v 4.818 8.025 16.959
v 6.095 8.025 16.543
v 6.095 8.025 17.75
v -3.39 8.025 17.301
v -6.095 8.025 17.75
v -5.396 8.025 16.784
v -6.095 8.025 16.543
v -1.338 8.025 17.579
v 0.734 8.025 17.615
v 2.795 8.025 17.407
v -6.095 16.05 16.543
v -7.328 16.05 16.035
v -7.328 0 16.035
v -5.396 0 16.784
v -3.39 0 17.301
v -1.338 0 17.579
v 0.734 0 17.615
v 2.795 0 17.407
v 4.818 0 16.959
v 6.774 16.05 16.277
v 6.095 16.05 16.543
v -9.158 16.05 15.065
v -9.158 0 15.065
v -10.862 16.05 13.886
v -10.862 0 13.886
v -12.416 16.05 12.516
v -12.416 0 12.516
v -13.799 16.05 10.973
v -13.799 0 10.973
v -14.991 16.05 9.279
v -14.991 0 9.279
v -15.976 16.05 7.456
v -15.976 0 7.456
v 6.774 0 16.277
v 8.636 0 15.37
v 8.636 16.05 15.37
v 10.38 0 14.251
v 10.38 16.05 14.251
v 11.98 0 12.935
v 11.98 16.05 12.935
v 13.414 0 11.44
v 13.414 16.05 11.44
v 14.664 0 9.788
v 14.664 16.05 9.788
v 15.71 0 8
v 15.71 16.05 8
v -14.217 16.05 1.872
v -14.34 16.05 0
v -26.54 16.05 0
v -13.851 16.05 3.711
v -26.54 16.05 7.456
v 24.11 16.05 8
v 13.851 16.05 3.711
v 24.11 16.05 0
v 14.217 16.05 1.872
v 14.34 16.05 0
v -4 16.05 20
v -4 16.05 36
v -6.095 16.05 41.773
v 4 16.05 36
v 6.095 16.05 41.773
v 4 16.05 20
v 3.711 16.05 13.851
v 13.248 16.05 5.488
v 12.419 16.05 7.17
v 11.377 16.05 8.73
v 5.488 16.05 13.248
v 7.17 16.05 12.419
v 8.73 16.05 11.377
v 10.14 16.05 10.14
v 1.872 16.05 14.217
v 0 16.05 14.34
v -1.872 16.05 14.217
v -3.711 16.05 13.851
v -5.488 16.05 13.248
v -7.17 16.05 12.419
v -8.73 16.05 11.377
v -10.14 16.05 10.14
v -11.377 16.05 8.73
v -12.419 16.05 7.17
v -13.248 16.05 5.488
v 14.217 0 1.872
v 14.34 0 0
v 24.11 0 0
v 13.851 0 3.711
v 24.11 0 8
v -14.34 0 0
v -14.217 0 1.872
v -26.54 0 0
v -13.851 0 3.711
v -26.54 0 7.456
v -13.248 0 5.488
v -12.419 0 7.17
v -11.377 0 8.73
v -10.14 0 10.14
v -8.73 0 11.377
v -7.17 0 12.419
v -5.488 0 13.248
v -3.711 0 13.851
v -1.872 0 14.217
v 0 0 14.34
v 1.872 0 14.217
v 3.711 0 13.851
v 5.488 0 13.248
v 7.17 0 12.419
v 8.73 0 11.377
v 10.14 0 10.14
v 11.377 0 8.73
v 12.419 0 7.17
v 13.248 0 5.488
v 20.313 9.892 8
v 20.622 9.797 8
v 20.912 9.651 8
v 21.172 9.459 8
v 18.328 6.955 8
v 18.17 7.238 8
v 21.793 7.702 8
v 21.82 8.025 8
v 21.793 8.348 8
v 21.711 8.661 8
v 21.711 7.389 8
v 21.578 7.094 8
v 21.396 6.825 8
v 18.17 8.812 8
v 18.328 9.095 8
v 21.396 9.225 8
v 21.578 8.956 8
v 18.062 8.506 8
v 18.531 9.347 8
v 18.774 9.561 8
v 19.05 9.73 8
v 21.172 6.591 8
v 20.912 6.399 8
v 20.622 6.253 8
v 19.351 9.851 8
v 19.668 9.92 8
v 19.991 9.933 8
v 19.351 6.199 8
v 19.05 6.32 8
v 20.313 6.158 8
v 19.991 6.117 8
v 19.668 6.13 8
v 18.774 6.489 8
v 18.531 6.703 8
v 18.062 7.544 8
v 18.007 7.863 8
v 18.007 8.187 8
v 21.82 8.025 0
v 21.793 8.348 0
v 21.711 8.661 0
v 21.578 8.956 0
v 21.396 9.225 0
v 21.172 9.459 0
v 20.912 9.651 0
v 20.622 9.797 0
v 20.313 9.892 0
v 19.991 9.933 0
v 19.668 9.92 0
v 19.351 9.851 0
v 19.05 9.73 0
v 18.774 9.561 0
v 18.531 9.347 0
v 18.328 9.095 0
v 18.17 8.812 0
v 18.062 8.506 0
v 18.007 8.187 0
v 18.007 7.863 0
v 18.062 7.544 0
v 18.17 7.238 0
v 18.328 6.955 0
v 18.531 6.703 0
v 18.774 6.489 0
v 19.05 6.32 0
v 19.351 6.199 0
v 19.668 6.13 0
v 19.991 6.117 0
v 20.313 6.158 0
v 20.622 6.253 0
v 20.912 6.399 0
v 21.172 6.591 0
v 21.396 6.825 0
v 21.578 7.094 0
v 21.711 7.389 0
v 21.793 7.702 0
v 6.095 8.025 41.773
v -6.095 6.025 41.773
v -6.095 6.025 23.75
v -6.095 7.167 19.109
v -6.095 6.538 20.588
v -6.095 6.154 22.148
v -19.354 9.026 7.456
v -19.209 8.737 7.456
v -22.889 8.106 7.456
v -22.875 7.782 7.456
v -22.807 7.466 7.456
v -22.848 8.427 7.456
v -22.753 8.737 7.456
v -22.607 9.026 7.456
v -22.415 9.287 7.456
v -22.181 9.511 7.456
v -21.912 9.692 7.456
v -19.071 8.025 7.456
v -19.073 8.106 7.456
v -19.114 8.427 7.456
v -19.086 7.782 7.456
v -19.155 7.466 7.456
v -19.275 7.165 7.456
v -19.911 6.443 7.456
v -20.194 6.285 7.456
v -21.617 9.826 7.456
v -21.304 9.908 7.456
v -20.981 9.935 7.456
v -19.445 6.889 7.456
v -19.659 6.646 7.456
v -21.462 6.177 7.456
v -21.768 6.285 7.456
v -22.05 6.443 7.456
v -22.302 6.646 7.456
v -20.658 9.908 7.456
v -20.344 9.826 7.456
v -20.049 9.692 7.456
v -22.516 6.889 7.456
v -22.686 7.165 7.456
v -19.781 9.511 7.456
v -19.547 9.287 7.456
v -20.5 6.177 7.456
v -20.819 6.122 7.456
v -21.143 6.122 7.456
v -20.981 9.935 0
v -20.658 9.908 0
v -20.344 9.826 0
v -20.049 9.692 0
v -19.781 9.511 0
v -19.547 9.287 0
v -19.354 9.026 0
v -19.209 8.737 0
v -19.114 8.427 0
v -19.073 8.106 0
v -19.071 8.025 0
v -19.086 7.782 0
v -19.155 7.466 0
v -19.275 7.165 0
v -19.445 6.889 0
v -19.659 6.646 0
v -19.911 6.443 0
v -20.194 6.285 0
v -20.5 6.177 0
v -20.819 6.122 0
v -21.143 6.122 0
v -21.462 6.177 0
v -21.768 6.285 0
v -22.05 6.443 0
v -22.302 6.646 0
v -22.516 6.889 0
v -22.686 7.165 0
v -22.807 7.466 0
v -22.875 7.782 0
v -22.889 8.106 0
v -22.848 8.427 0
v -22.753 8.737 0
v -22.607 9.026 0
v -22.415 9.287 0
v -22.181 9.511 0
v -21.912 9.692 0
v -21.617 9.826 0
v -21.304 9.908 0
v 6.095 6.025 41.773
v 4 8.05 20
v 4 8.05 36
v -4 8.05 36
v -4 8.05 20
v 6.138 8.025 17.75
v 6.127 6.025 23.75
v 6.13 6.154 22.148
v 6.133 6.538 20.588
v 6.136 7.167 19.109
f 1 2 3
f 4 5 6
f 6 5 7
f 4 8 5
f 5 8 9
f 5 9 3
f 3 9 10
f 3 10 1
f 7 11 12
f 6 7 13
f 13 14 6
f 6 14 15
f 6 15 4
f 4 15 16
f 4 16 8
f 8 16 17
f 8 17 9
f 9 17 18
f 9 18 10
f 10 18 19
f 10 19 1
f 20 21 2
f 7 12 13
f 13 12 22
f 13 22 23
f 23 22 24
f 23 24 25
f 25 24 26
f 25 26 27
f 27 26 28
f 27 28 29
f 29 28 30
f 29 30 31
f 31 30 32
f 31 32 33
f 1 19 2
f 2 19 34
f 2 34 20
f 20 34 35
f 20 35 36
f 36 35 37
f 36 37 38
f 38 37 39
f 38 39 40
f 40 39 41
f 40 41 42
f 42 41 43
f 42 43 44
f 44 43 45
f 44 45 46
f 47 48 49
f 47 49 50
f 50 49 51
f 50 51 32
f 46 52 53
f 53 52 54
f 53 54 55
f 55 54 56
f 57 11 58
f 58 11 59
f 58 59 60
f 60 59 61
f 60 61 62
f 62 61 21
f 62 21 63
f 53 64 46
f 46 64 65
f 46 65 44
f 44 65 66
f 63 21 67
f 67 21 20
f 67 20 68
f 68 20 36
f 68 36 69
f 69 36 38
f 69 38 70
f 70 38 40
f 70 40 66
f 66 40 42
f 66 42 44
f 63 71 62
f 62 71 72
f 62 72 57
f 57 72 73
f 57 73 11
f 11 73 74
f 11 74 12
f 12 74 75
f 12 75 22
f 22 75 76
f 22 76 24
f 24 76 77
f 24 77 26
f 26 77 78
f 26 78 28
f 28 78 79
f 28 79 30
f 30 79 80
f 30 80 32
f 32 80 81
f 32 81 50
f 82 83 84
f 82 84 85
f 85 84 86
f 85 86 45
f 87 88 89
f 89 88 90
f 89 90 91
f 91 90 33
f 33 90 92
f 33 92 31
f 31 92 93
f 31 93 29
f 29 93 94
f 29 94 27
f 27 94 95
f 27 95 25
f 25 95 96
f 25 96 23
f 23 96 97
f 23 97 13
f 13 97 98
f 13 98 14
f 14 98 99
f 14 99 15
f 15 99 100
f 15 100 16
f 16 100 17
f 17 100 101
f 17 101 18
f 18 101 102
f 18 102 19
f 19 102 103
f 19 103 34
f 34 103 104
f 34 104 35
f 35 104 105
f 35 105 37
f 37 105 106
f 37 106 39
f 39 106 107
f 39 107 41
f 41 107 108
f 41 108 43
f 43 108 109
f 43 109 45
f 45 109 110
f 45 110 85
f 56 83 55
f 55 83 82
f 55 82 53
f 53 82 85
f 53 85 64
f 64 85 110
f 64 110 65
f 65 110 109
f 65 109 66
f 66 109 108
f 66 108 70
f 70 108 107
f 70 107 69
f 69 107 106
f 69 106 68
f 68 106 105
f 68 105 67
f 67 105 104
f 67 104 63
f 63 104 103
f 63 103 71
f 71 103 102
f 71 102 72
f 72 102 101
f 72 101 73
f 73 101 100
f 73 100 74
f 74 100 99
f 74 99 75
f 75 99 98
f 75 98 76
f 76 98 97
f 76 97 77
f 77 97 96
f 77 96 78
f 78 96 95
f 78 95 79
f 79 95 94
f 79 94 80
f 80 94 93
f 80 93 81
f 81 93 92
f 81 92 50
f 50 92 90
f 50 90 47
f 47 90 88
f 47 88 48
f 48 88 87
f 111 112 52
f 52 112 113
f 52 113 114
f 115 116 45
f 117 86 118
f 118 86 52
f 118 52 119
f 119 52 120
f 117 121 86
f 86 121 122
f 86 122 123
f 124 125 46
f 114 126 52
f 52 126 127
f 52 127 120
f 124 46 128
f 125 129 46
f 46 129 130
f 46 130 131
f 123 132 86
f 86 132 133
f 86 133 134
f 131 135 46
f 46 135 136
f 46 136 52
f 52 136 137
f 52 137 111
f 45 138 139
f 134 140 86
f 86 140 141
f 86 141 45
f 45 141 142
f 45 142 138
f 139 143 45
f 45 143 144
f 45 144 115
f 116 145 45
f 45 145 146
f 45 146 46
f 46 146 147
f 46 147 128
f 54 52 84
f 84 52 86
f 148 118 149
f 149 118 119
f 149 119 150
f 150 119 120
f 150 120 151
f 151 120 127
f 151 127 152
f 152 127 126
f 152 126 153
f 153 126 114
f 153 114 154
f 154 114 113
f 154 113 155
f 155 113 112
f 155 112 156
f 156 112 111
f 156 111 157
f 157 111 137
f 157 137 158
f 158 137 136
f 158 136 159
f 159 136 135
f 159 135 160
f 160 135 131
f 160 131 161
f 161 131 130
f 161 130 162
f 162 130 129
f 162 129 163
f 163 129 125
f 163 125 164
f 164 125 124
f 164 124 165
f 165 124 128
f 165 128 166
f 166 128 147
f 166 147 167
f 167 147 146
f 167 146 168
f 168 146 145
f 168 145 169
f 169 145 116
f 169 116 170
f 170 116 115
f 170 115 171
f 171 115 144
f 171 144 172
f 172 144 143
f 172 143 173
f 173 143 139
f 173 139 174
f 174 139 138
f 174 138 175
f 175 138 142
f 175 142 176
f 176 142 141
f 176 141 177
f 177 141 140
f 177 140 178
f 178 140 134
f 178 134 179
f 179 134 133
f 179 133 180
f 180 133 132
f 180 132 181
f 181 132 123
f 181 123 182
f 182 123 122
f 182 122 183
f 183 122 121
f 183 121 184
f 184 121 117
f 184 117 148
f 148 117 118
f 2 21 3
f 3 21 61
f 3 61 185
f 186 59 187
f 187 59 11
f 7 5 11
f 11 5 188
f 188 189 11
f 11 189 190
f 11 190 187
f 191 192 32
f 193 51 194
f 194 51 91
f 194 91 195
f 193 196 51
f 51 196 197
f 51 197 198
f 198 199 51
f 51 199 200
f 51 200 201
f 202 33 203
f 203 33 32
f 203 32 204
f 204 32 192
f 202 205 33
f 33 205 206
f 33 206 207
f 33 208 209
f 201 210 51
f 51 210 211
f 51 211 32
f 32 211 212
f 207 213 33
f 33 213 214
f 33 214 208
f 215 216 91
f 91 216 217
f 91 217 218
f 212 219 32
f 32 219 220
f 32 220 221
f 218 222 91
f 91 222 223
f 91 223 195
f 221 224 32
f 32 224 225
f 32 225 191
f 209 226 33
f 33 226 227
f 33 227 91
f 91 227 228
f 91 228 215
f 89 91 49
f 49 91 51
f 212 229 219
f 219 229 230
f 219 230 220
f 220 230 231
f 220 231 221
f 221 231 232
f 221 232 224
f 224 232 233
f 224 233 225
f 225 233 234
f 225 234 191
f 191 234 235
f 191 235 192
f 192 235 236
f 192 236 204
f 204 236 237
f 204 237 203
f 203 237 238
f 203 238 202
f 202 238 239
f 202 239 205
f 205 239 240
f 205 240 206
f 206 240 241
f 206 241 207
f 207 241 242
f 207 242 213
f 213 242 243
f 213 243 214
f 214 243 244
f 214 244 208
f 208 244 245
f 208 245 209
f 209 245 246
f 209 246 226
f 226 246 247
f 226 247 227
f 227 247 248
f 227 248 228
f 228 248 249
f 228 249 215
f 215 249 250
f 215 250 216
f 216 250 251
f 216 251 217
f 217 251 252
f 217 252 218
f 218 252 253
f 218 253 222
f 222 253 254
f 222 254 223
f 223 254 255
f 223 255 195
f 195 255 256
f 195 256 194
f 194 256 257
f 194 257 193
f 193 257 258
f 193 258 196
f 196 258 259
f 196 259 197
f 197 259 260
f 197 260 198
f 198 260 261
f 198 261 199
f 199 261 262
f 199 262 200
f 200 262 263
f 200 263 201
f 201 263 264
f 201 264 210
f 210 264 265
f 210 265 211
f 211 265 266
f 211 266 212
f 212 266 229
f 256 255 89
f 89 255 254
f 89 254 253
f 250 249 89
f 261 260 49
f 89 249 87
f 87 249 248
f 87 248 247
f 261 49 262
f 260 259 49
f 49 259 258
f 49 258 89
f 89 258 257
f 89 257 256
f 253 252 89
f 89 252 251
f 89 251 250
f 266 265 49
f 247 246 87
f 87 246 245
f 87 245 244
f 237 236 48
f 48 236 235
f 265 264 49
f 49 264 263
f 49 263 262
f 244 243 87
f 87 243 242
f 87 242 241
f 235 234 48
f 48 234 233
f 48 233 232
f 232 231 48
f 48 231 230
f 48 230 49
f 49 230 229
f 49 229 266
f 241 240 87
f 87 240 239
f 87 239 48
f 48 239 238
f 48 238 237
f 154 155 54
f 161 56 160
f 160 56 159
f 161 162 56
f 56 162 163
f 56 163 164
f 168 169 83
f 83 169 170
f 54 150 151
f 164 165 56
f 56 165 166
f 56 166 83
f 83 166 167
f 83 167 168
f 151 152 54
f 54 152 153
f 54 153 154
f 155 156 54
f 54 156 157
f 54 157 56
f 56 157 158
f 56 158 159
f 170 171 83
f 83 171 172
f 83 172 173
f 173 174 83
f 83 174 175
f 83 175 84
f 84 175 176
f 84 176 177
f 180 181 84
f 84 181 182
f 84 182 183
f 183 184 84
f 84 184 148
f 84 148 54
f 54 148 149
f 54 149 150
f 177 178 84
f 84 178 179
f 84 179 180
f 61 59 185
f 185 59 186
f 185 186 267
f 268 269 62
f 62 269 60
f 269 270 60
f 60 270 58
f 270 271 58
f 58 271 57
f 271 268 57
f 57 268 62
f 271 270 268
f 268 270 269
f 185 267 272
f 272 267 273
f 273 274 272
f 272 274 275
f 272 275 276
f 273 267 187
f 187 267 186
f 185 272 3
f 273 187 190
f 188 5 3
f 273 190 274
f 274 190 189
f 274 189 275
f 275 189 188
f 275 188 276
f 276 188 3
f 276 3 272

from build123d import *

# Parameters (mm, degrees)
SKETCH_1_R             = 17.63
SKETCH_1_R_2           = 14.34
EXTRUDE_1_DEPTH        = 16.05
EXTRUDE_1_2_DEPTH      = 9.77
EXTRUDE_1_2_DEPTH_BACK = 3
SKETCH_2_W             = 16
SKETCH_2_H             = 16.05
SKETCH_3_W             = 3.41
SKETCH_3_H             = 16
CUT_EXTRUDE_1_DEPTH    = 37.411121927
SKETCH_4_R             = 1.91
CUT_EXTRUDE_2_DEPTH    = 39.675463798
EXTRUDE_2_DEPTH        = 4
EXTRUDE_2_DEPTH_BACK   = 2.77
SKETCH_5_W             = 12.19
SKETCH_5_H             = 8.263625949
SKETCH_6_W             = 12.19
SKETCH_6_H             = 6.77
EXTRUDE_3_DEPTH        = 63
SKETCH_8_W             = 12.19
SKETCH_8_H             = 6.77
EXTRUDE_4_DEPTH        = 0.16
EXTRUDE_5_DEPTH        = 3.16
EXTRUDE_5_DEPTH_BACK   = 10
SKETCH_12_W            = 16
SKETCH_12_H            = 16.05
SKETCH_13_W            = 1.21
SKETCH_13_H            = 16
CUT_EXTRUDE_3_DEPTH    = 73.543164889
SKETCH_14_R            = 1.91
CUT_EXTRUDE_4_DEPTH    = 90.07387176
SKETCH_15_R            = 4.05
CUT_EXTRUDE_5_DEPTH    = 24
SKETCH_16_W            = 56.400519221
SKETCH_16_H            = 19.935010357
CUT_EXTRUDE_6_DEPTH    = 73.088971918
SKETCH_17_W            = 12.19
SKETCH_17_H            = 71.423625949
EXTRUDE_7_DEPTH        = 25
SKETCH_18_W            = 26.793372528
SKETCH_18_H            = 63.398625949
CUT_EXTRUDE_7_DEPTH    = 25
SKETCH_19_R            = 4
CUT_EXTRUDE_8_DEPTH    = 24
CUT_EXTRUDE_9_DEPTH    = 29
SKETCH_21_W            = 8
SKETCH_21_H            = 16
CUT_EXTRUDE_10_DEPTH   = 8
EXTRUDE_9_DEPTH        = 2
FILLET_1_R             = 10


with BuildPart() as part:
    # 草圖1 → Extrude 1 (new body)
    with BuildSketch(Plane(origin=(0, 0, 0), x_dir=(1, 0, 0), z_dir=(0, 1, 0))):
        Circle(SKETCH_1_R)
        Circle(SKETCH_1_R_2, mode=Mode.SUBTRACT)
    extrude(amount=EXTRUDE_1_DEPTH)

    # 草圖2 → Extrude 1 2 (add, two sides: drawn at the far end of the back side and taken through both)
    with BuildSketch(Plane(origin=(17.75, 0, 0), x_dir=(0, 0, -1), z_dir=(1, 0, 0)).offset(-EXTRUDE_1_2_DEPTH_BACK)):
        with Locations((0, 8.025)):
            Rectangle(SKETCH_2_W, SKETCH_2_H)
    extrude(amount=EXTRUDE_1_2_DEPTH + EXTRUDE_1_2_DEPTH_BACK)

    # 草圖3 → 除料-伸長1 (cut, through all)
    with BuildSketch(Plane(origin=(0, 16.05, 0), x_dir=(1, 0, 0), z_dir=(0, 1, 0))):
        with Locations((25.815, 0)):
            Rectangle(SKETCH_3_W, SKETCH_3_H)
    extrude(amount=-CUT_EXTRUDE_1_DEPTH, mode=Mode.SUBTRACT)

    # 草圖4 → 除料-伸長2 (cut, through all)
    with BuildSketch(Plane.XY.offset(8)):
        with Locations((19.910203689, 8.025)):
            Circle(SKETCH_4_R)
    extrude(amount=-CUT_EXTRUDE_2_DEPTH, mode=Mode.SUBTRACT)

    # 草圖5 → 填料-伸長2 (add, two sides: drawn at the far end of the back side and taken through both)
    with BuildSketch(Plane.XY.offset(17.75).offset(-EXTRUDE_2_DEPTH_BACK)):
        with Locations((0, 12.156812974)):
            Rectangle(SKETCH_5_W, SKETCH_5_H)
    extrude(amount=EXTRUDE_2_DEPTH + EXTRUDE_2_DEPTH_BACK)

    # 草圖6 → 填料-伸長3 (add)
    with BuildSketch(Plane(origin=(0, 16.288625949, 0), x_dir=(1, 0, 0), z_dir=(0, 1, 0))):
        with Locations((0, -18.365)):
            Rectangle(SKETCH_6_W, SKETCH_6_H)
    extrude(amount=EXTRUDE_3_DEPTH)

    # 草圖8 → 填料-伸長4 (add)
    with BuildSketch(Plane(origin=(0, 79.288625949, 0), x_dir=(1, 0, 0), z_dir=(0, 1, 0))):
        with Locations((0, -18.365)):
            Rectangle(SKETCH_8_W, SKETCH_8_H)
    extrude(amount=EXTRUDE_4_DEPTH)

    # 草圖12 → 填料-伸長5 (add, two sides: drawn at the far end of the back side and taken through both)
    with BuildSketch(Plane(origin=(-17.75, 0, 0), x_dir=(0, 0, -1), z_dir=(1, 0, 0)).offset(-EXTRUDE_5_DEPTH_BACK)):
        with Locations((0.543544944, 8.025)):
            Rectangle(SKETCH_12_W, SKETCH_12_H)
    extrude(amount=EXTRUDE_5_DEPTH + EXTRUDE_5_DEPTH_BACK)

    # 草圖13 → 除料-伸長3 (cut, through all)
    with BuildSketch(Plane(origin=(0, 16.05, 0), x_dir=(1, 0, 0), z_dir=(0, 1, 0))):
        with Locations((-27.145, 0.543544944)):
            Rectangle(SKETCH_13_W, SKETCH_13_H)
    extrude(amount=-CUT_EXTRUDE_3_DEPTH, mode=Mode.SUBTRACT)

    # 草圖14 → 除料-伸長4 (cut, through all)
    with BuildSketch(Plane(origin=(0, 0, -8.543544944), x_dir=(-1, 0, 0), z_dir=(0, 0, -1))):
        with Locations(Location((20.980783679, 8.025, 0), (0, 0, 90))):
            Circle(SKETCH_14_R)
    extrude(amount=-CUT_EXTRUDE_4_DEPTH, mode=Mode.SUBTRACT)

    # 草圖15 → 除料-伸長5 (cut)
    with BuildSketch(Plane(origin=(0, 79.448625949, 0), x_dir=(1, 0, 0), z_dir=(0, 1, 0))):
        with Locations((0, -14.98)):
            Circle(SKETCH_15_R)
    extrude(amount=-CUT_EXTRUDE_5_DEPTH, mode=Mode.SUBTRACT)

    # 草圖16 → 除料-伸長6 (cut, through all)
    with BuildSketch(Plane(origin=(0, 16.05, 0), x_dir=(1, 0, 0), z_dir=(0, 1, 0))):
        with Locations((-4.090259611, 9.967505179)):
            Rectangle(SKETCH_16_W, SKETCH_16_H)
    extrude(amount=-CUT_EXTRUDE_6_DEPTH, mode=Mode.SUBTRACT)

    # 草圖17 → 填料-伸長7 (add)
    with BuildSketch(Plane.XY.offset(21.75)):
        with Locations((0, 43.736812975)):
            Rectangle(SKETCH_17_W, SKETCH_17_H)
    extrude(amount=EXTRUDE_7_DEPTH)

    # 草圖18 → 除料-伸長7 (cut)
    with BuildSketch(Plane.ZY.offset(6.095)):
        with Locations((28.376686264, 47.749312975)):
            Rectangle(SKETCH_18_W, SKETCH_18_H)
    extrude(amount=-CUT_EXTRUDE_7_DEPTH, mode=Mode.SUBTRACT)

    # 草圖19 → 除料-伸長8 (cut)
    with BuildSketch(Plane(origin=(0, 79.448625949, 0), x_dir=(1, 0, 0), z_dir=(0, 1, 0))):
        with Locations((0, -41.773372528)):
            Circle(SKETCH_19_R)
    extrude(amount=-CUT_EXTRUDE_8_DEPTH, mode=Mode.SUBTRACT)

    # 草圖20 → 除料-伸長9 (cut)
    with BuildSketch(Plane(origin=(6.095, 0, 0), x_dir=(0, 0, -1), z_dir=(1, 0, 0))):
        Polygon((-41.773372528, 16.05), (-41.773372528, 8.025), (-46.75, 8.025), (-46.75, 79.448625949), (-41.773372528, 79.448625949), align=None)
    extrude(amount=-CUT_EXTRUDE_9_DEPTH, mode=Mode.SUBTRACT)

    # 草圖21 → 除料-伸長10 (cut)
    with BuildSketch(Plane(origin=(0, 16.05, 0), x_dir=(1, 0, 0), z_dir=(0, 1, 0))):
        with Locations((0, -28)):
            Rectangle(SKETCH_21_W, SKETCH_21_H)
    extrude(amount=-CUT_EXTRUDE_10_DEPTH, mode=Mode.SUBTRACT)

    # 草圖23 → 填料-伸長9 (add)
    with BuildSketch(Plane.XZ.offset(-8.025)):
        Polygon((-6.095, 41.773372528), (-6.095, 17.75), (6.13829314, 17.75), (6.095, 41.773372528), align=None)
    extrude(amount=EXTRUDE_9_DEPTH)

    # 圓角1
    # the kernel refuses this fillet: 10 mm, written as the material it takes off along each edge
    with BuildSketch(Plane(origin=(-21.095, 6.025, 17.75), x_dir=(0, 0, 1), z_dir=(1, 0, 0))) as fillet_1_piece_1:
        with BuildLine():
            CenterArc((6, -10), FILLET_1_R, 90, 36.869897646)
            Line((0, -2), (0, 0))
            Line((0, 0), (6, 0))
        make_face()
    extrude(amount=42.23329314, mode=Mode.SUBTRACT)


solid = part.part
